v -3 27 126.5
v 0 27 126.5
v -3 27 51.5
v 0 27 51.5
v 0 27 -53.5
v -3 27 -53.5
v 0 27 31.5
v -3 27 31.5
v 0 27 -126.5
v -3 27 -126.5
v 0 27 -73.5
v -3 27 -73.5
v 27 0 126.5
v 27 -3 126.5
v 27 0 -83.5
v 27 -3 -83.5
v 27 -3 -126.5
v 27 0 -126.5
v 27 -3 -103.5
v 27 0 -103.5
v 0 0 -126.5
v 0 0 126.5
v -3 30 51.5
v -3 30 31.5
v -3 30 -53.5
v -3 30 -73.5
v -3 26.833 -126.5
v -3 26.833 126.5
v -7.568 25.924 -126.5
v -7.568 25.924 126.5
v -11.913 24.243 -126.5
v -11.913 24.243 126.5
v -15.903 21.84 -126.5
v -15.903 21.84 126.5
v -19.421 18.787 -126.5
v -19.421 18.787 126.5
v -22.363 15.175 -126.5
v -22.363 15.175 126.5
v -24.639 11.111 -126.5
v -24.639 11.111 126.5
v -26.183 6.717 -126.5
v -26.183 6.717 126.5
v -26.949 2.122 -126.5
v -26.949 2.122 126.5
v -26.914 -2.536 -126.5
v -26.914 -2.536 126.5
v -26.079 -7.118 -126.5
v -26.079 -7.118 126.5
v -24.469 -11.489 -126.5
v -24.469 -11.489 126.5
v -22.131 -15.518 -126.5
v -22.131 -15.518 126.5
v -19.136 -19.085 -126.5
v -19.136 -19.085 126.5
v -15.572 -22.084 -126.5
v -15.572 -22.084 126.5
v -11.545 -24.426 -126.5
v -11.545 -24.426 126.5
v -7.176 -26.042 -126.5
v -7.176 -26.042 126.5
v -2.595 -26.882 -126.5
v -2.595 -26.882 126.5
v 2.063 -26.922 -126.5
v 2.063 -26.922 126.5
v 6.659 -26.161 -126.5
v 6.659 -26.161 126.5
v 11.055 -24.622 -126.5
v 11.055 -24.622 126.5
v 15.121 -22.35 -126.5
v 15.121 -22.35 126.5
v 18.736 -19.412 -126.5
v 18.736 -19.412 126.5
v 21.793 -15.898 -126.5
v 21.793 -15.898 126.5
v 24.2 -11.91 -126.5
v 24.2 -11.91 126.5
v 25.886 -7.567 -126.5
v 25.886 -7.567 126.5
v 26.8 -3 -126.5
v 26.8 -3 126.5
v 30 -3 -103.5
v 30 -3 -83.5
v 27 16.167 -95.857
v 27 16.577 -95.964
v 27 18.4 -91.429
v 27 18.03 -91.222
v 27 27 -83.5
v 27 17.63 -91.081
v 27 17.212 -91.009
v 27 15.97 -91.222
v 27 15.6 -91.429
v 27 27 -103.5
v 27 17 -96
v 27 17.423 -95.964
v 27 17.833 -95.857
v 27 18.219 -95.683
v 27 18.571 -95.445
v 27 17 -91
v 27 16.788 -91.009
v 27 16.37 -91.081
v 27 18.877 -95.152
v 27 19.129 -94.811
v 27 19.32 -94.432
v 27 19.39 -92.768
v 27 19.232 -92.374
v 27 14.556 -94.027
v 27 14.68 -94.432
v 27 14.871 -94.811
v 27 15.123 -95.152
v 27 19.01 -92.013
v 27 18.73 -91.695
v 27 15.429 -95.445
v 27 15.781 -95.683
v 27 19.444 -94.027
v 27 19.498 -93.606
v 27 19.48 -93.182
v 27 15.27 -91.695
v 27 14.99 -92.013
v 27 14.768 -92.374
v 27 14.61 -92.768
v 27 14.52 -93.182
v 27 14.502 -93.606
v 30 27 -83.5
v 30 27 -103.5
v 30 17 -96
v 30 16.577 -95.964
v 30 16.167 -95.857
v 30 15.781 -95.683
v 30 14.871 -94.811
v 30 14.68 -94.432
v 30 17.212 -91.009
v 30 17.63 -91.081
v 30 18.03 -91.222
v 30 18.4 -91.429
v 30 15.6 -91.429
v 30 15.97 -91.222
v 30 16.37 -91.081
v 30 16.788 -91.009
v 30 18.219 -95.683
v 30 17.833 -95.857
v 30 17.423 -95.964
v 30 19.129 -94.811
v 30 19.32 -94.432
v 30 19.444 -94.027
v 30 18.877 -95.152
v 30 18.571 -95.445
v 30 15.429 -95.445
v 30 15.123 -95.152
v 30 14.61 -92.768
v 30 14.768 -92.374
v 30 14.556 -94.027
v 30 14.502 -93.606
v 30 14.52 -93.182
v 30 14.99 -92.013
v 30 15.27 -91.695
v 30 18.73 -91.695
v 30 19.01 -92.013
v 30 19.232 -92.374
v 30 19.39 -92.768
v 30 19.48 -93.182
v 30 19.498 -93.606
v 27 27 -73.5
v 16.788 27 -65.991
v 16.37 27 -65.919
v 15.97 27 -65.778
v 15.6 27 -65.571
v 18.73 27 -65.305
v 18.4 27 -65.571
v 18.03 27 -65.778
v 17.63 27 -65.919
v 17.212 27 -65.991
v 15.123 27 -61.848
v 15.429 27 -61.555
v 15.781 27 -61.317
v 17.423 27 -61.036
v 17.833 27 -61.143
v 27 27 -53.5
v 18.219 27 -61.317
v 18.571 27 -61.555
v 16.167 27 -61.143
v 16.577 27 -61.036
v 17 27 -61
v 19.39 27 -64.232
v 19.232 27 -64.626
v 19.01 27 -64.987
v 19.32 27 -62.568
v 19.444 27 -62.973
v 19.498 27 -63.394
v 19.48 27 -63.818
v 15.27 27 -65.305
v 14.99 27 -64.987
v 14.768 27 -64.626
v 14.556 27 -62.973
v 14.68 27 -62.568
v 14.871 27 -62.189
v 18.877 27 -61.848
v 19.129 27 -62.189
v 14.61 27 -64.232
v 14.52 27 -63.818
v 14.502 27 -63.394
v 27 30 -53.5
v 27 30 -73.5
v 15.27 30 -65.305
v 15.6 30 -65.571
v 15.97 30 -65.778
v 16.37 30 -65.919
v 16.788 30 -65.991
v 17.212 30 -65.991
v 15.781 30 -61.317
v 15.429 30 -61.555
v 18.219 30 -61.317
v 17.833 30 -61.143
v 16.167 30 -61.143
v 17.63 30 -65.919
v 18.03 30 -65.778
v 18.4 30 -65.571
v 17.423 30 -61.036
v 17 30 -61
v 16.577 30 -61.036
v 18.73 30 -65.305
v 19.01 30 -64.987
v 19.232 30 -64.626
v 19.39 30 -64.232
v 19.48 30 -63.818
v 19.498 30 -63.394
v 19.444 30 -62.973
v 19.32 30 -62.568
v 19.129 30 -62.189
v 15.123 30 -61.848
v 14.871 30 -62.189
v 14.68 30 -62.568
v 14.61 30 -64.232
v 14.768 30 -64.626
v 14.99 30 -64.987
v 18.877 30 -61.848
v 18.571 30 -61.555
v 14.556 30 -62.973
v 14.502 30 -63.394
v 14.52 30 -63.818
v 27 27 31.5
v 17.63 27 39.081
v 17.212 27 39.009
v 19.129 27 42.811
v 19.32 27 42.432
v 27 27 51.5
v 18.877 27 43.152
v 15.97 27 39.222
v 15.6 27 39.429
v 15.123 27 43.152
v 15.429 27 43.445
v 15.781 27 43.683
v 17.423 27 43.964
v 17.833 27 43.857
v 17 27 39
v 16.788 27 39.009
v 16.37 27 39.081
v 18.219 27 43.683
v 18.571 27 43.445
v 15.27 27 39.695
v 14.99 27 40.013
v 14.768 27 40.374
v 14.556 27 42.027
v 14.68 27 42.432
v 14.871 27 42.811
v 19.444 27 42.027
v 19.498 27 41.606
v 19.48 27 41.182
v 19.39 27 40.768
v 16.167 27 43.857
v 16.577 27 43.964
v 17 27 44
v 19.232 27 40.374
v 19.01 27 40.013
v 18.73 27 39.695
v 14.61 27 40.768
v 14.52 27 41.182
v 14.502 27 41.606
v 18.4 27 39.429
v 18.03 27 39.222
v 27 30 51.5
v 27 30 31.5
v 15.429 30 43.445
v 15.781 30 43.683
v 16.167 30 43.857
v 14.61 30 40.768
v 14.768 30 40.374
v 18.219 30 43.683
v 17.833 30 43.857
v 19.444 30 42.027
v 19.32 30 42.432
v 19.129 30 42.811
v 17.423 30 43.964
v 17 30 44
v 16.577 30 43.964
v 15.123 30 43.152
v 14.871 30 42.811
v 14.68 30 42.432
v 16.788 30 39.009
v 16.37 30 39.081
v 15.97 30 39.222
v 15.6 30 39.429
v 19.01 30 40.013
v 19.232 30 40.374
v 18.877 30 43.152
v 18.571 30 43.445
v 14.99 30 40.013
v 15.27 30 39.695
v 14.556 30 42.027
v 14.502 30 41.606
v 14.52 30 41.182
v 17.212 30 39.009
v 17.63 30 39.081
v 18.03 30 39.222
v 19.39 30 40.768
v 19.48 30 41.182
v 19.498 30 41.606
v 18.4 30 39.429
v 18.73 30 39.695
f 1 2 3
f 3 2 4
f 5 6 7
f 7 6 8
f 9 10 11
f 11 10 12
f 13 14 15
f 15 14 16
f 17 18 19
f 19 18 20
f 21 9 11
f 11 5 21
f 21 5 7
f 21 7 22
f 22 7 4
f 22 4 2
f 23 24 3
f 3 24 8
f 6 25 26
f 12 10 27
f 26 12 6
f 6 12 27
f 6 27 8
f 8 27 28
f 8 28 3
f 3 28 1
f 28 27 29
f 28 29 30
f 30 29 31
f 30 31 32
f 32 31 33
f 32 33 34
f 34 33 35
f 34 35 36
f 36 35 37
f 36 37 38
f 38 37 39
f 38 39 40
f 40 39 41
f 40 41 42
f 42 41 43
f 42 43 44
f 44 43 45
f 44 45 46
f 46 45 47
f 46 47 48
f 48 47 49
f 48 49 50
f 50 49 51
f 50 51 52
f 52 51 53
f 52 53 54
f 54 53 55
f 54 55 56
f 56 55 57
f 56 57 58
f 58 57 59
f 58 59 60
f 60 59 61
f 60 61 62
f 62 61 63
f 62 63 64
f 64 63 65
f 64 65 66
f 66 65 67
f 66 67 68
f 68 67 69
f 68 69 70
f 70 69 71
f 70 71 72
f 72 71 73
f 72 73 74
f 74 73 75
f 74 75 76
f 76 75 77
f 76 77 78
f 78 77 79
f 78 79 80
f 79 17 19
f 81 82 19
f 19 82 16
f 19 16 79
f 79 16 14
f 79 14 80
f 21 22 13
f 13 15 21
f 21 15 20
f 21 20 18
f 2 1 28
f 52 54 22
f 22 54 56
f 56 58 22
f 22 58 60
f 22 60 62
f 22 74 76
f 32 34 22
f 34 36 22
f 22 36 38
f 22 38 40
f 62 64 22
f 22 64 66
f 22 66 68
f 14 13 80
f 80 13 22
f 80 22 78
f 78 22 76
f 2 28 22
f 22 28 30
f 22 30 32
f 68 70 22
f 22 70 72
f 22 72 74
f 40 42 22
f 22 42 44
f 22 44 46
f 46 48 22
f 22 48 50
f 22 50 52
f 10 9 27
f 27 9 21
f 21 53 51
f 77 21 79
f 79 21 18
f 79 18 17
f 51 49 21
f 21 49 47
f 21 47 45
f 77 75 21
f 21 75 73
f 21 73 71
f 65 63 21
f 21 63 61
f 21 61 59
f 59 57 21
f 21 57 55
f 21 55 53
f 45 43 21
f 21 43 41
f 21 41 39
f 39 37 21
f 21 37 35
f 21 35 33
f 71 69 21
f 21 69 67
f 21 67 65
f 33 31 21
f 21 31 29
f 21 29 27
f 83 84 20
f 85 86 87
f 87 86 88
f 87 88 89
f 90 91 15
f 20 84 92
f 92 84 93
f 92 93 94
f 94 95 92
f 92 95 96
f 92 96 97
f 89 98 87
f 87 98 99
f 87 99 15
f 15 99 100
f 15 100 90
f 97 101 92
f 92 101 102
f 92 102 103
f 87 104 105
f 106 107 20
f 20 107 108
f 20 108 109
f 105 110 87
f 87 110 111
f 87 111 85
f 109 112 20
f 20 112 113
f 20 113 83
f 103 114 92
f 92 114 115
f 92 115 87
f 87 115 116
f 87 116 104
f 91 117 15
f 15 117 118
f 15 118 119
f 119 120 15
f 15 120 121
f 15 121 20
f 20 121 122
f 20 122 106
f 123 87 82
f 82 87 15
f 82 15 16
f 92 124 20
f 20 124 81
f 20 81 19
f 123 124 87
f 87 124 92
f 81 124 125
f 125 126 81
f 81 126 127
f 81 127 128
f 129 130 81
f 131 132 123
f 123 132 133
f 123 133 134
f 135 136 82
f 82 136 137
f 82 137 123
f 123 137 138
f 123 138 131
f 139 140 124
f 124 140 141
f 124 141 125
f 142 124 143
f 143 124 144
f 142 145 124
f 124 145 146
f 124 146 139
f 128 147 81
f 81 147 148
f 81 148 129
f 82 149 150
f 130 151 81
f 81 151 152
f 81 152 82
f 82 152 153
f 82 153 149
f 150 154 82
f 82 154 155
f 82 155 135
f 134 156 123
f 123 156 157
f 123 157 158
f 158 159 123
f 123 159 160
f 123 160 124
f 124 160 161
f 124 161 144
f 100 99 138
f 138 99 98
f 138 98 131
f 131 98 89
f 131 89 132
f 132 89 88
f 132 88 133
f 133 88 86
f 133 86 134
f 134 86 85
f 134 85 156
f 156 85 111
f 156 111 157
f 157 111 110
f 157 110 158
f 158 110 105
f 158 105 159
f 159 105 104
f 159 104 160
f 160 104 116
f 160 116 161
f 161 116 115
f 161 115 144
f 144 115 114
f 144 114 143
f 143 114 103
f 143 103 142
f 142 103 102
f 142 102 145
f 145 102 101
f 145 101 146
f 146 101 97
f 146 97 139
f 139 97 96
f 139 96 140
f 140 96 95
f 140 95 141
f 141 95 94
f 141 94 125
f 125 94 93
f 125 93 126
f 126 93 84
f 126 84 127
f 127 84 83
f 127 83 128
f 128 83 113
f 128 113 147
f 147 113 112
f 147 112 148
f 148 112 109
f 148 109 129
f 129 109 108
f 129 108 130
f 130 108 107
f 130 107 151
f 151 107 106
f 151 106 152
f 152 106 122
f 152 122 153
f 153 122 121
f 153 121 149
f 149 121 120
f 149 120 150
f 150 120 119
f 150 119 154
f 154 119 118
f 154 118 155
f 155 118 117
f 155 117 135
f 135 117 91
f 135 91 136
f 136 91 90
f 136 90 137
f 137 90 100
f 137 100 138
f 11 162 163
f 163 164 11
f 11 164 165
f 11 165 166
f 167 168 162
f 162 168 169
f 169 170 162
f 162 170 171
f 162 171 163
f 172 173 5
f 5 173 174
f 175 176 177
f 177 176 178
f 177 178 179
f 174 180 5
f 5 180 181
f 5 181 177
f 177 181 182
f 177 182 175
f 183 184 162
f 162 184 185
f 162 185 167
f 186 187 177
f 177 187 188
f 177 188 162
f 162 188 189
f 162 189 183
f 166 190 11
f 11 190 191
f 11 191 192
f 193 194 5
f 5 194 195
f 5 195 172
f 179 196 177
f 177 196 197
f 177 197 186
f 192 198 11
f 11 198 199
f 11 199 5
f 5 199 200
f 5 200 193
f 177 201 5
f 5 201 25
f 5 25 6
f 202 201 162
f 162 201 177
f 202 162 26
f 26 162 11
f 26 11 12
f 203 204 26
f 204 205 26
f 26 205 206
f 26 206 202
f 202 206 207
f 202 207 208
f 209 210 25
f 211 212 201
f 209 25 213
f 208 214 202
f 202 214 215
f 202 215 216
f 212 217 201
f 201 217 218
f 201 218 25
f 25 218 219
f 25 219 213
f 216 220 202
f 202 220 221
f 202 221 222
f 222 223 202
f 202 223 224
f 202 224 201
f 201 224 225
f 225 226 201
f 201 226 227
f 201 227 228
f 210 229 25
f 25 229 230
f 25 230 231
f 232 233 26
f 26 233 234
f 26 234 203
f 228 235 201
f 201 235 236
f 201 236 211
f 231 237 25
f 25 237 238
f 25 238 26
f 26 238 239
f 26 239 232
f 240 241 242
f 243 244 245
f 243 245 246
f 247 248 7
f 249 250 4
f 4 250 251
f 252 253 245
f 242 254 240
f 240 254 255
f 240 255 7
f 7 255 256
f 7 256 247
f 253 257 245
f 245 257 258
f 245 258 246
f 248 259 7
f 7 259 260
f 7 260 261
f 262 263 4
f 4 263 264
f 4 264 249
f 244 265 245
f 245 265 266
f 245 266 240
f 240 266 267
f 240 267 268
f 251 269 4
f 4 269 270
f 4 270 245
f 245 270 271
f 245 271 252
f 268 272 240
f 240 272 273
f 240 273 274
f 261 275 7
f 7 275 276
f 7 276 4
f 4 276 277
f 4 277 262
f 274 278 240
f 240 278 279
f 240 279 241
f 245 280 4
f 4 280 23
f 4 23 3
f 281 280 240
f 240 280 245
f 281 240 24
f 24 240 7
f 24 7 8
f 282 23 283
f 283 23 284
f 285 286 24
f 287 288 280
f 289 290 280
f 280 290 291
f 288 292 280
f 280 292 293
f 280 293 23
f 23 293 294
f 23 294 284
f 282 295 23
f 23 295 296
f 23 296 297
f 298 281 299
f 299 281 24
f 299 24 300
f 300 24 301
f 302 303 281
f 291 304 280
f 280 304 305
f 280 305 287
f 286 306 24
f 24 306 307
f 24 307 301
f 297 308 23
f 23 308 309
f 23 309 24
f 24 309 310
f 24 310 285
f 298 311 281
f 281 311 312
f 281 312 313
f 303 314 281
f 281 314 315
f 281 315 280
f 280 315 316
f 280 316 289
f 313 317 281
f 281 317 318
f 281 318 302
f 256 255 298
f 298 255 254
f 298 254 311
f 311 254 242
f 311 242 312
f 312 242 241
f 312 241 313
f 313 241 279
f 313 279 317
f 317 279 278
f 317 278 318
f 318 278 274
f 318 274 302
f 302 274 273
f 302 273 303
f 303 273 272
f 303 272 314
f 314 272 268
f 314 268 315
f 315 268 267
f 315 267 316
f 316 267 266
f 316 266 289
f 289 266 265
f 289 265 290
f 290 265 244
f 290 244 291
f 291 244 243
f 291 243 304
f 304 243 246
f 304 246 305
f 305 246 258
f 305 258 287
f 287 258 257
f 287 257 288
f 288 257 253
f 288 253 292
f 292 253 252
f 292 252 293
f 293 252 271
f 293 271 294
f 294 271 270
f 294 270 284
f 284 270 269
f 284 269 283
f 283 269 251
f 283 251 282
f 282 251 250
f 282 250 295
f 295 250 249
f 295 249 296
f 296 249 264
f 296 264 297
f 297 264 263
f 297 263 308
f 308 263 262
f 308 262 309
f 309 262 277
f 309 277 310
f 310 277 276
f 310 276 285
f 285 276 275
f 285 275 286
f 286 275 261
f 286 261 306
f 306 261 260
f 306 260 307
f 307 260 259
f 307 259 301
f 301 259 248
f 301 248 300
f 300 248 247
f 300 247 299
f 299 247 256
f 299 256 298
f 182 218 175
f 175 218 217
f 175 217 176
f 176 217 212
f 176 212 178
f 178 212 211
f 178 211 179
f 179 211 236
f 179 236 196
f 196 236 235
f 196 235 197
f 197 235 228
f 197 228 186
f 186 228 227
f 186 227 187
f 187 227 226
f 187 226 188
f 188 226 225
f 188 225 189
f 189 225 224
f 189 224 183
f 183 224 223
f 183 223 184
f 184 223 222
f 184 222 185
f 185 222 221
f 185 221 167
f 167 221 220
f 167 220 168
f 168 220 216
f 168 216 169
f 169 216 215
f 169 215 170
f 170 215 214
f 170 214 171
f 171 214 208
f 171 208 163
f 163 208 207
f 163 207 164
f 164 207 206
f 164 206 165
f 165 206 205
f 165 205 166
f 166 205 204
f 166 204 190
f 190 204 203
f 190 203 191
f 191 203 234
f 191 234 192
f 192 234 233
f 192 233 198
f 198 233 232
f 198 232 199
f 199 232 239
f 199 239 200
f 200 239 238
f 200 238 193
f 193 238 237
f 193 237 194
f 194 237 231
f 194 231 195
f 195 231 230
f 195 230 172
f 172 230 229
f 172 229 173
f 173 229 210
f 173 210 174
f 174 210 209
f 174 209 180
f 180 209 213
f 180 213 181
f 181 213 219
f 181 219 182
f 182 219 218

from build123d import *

# Parameters (mm, degrees)
BOSS_EXTRUDE1_DEPTH  = 126.5
SKETCH12_W           = 20
SKETCH12_H           = 30
BOSS_EXTRUDE6_DEPTH  = 3
CUT_EXTRUDE3_REACH   = 143.366
SKETCH13_R           = 2.5
SKETCH17_W           = 30
SKETCH17_H           = 20
BOSS_EXTRUDE10_DEPTH = 3
CUT_EXTRUDE5_REACH   = 143.957
SKETCH18_R           = 2.5


with BuildPart() as part:
    # Sketch4 → Boss-Extrude1 (new, symmetric)
    with BuildSketch(Plane.XY):
        with BuildLine():
            Line((0, 0), (27, 0))
            Line((27, 0), (27, -3))
            Line((27, -3), (26.800082477, -3))
            ThreePointArc((26.800082477, -3), (-19.135504983, -19.08508544), (-3, 26.83281573))
            Line((-3, 26.83281573), (-3, 27))
            Line((-3, 27), (0, 27))
            Line((0, 27), (0, 0))
        make_face()
    extrude(amount=BOSS_EXTRUDE1_DEPTH, both=True)

    # Sketch12 → Boss-Extrude6 (add)
    with BuildSketch(Plane(origin=(27, 0, 0), x_dir=(0, 0, -1), z_dir=(1, 0, 0))):
        with Locations((93.5, 12)):
            Rectangle(SKETCH12_W, SKETCH12_H)
    extrude(amount=BOSS_EXTRUDE6_DEPTH)

    # Sketch13 → Cut-Extrude3 (cut, up to next)
    with BuildSketch(Plane(origin=(30, 0, 0), x_dir=(0, 0, -1), z_dir=(1, 0, 0)), mode=Mode.PRIVATE) as cut_extrude3_sk1:
        with Locations((93.5, 17)):
            Circle(SKETCH13_R)
    cut_extrude3_tool1 = extrude(cut_extrude3_sk1.sketch, amount=-CUT_EXTRUDE3_REACH, mode=Mode.PRIVATE) & part.part
    add(cut_extrude3_tool1.solids().sort_by_distance((30, 17, -93.5))[0], mode=Mode.SUBTRACT)

    # Sketch17 → Boss-Extrude10 (add)
    with BuildSketch(Plane(origin=(0, 27, 0), x_dir=(1, 0, 0), z_dir=(0, 1, 0))):
        with Locations((12, 63.5)):
            Rectangle(SKETCH17_W, SKETCH17_H)
        with Locations((12, -41.5)):
            Rectangle(SKETCH17_W, SKETCH17_H)
    extrude(amount=BOSS_EXTRUDE10_DEPTH)

    # Sketch18 → Cut-Extrude5 (cut, up to next)
    with BuildSketch(Plane(origin=(0, 30, 0), x_dir=(1, 0, 0), z_dir=(0, 1, 0)), mode=Mode.PRIVATE) as cut_extrude5_sk1:
        with Locations(Location((17, 63.5, 0), (0, 0, 270))):
            Circle(SKETCH18_R)
    cut_extrude5_tool1 = extrude(cut_extrude5_sk1.sketch, amount=-CUT_EXTRUDE5_REACH, mode=Mode.PRIVATE) & part.part
    # Sketch18 → Cut-Extrude5 (cut, up to next)
    with BuildSketch(Plane(origin=(0, 30, 0), x_dir=(1, 0, 0), z_dir=(0, 1, 0)), mode=Mode.PRIVATE) as cut_extrude5_sk2:
        with Locations(Location((17, -41.5, 0), (0, 0, 270))):
            Circle(SKETCH18_R)
    cut_extrude5_tool2 = extrude(cut_extrude5_sk2.sketch, amount=-CUT_EXTRUDE5_REACH, mode=Mode.PRIVATE) & part.part
    add(cut_extrude5_tool1.solids().sort_by_distance((17, 30, -63.5))[0], mode=Mode.SUBTRACT)
    add(cut_extrude5_tool2.solids().sort_by_distance((17, 30, 41.5))[0], mode=Mode.SUBTRACT)


solid = part.part
